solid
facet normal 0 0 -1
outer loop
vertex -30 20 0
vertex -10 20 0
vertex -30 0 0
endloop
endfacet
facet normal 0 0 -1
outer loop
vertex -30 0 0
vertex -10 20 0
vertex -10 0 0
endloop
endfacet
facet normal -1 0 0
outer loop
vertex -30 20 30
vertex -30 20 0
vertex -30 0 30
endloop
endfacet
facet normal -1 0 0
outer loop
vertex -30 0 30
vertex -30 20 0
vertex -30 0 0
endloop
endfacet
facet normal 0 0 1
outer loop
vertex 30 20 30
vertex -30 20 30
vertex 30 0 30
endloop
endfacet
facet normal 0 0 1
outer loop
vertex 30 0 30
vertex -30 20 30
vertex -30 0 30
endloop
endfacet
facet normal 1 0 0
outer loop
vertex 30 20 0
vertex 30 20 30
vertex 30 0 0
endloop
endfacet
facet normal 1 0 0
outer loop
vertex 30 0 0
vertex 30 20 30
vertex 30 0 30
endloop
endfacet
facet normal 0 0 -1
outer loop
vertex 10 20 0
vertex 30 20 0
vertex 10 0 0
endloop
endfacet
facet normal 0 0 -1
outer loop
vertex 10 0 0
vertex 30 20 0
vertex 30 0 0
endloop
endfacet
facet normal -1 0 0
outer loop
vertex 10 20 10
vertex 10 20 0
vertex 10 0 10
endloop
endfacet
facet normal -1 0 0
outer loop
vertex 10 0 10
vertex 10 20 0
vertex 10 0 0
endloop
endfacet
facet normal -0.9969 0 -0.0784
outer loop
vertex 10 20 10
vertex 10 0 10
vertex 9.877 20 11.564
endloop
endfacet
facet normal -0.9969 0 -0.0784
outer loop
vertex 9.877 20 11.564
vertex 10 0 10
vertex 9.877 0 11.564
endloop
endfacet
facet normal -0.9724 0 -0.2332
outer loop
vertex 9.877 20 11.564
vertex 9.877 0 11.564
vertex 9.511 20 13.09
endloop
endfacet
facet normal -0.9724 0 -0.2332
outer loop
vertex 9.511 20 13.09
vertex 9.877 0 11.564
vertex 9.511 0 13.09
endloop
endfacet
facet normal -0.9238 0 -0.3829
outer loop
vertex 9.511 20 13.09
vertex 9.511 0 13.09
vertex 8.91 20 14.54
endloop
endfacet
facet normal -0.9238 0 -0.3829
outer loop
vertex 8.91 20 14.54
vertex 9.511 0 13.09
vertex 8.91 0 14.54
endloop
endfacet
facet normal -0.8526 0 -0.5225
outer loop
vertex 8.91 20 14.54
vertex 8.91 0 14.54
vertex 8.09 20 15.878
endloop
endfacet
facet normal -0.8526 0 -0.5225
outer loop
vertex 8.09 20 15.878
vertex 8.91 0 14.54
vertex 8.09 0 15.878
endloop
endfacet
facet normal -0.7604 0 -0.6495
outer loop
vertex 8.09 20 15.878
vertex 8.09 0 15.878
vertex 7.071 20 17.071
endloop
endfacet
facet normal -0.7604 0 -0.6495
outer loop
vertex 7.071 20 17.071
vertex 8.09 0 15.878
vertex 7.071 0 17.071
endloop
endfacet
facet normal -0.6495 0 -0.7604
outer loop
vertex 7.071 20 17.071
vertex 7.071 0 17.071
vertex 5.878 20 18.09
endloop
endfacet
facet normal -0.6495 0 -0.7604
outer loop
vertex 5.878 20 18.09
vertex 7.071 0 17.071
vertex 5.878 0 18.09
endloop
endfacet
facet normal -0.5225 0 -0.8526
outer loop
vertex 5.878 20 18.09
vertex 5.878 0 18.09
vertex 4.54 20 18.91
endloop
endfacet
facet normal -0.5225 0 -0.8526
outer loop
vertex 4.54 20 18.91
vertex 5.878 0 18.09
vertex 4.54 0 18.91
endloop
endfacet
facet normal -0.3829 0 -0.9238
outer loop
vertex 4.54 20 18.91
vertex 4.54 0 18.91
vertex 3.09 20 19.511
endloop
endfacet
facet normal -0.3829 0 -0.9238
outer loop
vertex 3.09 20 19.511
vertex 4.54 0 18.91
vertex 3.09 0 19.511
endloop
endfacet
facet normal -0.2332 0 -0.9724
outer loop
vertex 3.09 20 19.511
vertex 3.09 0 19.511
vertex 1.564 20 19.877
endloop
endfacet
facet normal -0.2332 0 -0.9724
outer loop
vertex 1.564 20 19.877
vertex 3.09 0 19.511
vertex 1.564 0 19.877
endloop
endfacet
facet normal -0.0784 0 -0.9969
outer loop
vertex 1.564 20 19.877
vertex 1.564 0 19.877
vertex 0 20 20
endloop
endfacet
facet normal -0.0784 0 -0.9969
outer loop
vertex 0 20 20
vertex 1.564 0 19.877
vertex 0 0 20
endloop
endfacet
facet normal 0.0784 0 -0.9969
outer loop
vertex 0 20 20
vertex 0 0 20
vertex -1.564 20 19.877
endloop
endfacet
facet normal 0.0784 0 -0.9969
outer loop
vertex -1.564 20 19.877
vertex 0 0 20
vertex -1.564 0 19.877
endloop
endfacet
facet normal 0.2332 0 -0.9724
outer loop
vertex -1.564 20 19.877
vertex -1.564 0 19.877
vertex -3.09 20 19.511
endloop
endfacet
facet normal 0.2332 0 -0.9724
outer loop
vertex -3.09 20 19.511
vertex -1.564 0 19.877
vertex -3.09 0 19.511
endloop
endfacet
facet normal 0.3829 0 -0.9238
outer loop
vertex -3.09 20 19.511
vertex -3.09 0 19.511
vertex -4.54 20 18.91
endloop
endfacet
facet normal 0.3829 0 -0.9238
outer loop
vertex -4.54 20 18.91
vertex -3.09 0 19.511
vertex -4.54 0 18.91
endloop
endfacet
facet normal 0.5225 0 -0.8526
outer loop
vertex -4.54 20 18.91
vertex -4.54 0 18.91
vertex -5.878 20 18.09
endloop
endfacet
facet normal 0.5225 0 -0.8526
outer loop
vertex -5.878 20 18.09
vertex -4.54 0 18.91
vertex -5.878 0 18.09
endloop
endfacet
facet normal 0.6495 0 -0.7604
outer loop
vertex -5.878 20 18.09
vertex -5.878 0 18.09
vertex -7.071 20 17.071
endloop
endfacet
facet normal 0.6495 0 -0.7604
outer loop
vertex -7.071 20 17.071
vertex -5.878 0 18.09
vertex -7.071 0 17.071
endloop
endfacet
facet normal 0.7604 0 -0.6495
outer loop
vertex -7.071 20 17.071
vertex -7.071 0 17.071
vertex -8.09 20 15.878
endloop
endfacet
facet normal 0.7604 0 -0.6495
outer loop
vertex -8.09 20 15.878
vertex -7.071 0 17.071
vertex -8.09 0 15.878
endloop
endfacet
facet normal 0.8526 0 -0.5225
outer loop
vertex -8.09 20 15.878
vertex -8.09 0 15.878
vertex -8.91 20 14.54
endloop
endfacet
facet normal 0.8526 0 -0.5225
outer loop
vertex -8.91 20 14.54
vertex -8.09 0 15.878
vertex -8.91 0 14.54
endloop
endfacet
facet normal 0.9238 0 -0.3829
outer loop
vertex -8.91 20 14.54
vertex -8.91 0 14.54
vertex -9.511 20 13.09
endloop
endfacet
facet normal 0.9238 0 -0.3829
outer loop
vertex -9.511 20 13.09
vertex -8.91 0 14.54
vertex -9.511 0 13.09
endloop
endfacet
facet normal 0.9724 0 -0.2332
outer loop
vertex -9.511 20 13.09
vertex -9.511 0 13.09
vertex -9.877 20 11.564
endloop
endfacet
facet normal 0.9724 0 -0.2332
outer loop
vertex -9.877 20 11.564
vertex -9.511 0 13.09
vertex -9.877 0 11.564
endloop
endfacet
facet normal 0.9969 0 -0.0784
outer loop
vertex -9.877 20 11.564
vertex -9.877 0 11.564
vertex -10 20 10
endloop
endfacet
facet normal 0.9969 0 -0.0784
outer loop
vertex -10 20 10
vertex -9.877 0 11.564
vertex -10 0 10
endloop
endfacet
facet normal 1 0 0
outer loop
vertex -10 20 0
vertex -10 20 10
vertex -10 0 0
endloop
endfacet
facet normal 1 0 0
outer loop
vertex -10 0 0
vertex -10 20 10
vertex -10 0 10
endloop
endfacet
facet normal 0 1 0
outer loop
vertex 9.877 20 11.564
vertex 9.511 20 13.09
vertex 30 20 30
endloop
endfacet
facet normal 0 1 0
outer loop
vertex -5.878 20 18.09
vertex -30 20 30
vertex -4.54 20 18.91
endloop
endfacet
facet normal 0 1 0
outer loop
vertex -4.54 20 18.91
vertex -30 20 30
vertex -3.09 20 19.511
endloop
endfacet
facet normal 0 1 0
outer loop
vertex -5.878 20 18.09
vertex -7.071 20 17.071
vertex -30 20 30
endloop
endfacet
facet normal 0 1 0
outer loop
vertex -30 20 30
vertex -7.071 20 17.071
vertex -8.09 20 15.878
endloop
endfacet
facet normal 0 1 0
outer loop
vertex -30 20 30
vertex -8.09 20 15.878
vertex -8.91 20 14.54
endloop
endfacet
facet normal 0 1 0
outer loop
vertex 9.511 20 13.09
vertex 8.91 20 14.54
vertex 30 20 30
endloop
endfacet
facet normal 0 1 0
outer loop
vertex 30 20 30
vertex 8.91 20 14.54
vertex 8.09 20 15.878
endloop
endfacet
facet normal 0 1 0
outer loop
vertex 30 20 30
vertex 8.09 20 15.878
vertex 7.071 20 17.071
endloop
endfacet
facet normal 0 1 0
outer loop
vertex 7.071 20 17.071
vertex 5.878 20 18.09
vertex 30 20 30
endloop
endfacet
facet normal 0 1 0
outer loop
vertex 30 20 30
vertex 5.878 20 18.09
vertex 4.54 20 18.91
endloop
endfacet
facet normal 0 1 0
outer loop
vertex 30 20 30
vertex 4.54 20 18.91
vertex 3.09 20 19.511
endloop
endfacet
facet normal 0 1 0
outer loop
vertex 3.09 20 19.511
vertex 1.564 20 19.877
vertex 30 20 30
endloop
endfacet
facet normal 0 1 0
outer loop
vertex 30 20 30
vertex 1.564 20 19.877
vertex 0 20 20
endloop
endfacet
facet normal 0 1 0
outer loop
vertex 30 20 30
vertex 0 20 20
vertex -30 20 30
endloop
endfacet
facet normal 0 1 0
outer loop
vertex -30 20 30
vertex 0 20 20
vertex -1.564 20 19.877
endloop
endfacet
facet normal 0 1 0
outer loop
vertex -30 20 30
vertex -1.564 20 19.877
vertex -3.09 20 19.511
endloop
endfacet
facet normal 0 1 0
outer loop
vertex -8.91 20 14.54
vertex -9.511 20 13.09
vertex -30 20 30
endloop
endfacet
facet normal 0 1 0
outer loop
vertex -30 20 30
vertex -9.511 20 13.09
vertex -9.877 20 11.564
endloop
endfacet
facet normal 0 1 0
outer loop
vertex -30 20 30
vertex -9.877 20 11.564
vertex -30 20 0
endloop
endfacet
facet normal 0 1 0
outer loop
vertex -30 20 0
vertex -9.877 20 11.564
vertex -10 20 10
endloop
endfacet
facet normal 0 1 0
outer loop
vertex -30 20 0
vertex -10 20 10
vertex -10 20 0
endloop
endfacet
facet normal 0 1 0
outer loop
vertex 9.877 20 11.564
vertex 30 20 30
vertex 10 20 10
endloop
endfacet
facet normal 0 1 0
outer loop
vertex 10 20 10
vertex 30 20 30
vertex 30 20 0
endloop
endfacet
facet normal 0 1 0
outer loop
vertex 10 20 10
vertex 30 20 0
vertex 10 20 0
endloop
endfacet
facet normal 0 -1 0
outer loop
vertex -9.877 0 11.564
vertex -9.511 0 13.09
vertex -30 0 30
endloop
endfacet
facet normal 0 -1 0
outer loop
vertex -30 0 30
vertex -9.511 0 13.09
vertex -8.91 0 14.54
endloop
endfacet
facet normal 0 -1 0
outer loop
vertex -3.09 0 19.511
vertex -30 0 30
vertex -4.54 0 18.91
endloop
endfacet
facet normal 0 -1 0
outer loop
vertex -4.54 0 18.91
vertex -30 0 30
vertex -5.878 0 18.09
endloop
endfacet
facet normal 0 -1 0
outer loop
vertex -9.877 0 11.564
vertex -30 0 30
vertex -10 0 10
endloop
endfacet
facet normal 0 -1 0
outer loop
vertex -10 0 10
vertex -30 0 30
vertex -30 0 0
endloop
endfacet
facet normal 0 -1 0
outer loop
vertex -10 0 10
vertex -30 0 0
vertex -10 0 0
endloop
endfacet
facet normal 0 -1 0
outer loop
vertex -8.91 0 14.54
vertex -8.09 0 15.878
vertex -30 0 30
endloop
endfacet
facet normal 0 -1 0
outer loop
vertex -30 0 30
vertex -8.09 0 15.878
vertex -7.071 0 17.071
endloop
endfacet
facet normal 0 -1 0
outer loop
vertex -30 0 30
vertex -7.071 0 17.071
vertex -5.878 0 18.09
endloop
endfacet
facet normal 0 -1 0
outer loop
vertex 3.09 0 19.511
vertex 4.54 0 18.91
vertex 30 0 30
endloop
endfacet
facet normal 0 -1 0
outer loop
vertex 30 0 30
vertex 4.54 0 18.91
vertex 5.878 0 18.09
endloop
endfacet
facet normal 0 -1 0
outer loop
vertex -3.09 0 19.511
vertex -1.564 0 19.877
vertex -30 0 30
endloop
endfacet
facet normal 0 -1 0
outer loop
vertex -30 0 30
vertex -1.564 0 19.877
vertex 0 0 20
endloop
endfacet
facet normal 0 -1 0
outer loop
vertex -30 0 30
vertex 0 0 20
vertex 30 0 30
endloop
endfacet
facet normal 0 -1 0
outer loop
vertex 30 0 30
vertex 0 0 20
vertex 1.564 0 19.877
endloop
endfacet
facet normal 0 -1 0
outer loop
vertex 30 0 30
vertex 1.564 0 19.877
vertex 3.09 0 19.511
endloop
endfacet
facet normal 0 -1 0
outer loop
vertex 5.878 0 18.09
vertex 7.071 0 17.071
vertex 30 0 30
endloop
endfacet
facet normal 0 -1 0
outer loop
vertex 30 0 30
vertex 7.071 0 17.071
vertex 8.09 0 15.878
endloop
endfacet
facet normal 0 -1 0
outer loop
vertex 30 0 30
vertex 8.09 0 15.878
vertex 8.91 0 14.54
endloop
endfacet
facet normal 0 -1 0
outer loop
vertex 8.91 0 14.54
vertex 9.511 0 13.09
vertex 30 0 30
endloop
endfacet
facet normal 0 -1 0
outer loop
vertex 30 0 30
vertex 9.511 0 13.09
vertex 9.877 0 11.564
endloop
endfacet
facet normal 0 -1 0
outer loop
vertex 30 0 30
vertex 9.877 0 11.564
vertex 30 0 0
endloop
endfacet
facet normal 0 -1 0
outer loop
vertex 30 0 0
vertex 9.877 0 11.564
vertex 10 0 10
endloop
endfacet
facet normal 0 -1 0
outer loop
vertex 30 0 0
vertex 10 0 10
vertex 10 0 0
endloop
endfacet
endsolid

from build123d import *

# Parameters (mm, degrees)
BOSS_EXTRUDE1_DEPTH = 20


with BuildPart() as part:
    # Sketch2 → Boss-Extrude1 (new body)
    with BuildSketch(Plane(origin=(0, 0, 0), x_dir=(1, 0, 0), z_dir=(0, 1, 0))):
        with BuildLine():
            Line((-10, 0), (-10, -10))
            ThreePointArc((-10, -10), (0, -20), (10, -10))
            Line((10, -10), (10, 0))
            Line((10, 0), (30, 0))
            Line((30, 0), (30, -30))
            Line((30, -30), (-30, -30))
            Line((-30, -30), (-30, 0))
            Line((-30, 0), (-10, 0))
        make_face()
    extrude(amount=BOSS_EXTRUDE1_DEPTH)


solid = part.part
